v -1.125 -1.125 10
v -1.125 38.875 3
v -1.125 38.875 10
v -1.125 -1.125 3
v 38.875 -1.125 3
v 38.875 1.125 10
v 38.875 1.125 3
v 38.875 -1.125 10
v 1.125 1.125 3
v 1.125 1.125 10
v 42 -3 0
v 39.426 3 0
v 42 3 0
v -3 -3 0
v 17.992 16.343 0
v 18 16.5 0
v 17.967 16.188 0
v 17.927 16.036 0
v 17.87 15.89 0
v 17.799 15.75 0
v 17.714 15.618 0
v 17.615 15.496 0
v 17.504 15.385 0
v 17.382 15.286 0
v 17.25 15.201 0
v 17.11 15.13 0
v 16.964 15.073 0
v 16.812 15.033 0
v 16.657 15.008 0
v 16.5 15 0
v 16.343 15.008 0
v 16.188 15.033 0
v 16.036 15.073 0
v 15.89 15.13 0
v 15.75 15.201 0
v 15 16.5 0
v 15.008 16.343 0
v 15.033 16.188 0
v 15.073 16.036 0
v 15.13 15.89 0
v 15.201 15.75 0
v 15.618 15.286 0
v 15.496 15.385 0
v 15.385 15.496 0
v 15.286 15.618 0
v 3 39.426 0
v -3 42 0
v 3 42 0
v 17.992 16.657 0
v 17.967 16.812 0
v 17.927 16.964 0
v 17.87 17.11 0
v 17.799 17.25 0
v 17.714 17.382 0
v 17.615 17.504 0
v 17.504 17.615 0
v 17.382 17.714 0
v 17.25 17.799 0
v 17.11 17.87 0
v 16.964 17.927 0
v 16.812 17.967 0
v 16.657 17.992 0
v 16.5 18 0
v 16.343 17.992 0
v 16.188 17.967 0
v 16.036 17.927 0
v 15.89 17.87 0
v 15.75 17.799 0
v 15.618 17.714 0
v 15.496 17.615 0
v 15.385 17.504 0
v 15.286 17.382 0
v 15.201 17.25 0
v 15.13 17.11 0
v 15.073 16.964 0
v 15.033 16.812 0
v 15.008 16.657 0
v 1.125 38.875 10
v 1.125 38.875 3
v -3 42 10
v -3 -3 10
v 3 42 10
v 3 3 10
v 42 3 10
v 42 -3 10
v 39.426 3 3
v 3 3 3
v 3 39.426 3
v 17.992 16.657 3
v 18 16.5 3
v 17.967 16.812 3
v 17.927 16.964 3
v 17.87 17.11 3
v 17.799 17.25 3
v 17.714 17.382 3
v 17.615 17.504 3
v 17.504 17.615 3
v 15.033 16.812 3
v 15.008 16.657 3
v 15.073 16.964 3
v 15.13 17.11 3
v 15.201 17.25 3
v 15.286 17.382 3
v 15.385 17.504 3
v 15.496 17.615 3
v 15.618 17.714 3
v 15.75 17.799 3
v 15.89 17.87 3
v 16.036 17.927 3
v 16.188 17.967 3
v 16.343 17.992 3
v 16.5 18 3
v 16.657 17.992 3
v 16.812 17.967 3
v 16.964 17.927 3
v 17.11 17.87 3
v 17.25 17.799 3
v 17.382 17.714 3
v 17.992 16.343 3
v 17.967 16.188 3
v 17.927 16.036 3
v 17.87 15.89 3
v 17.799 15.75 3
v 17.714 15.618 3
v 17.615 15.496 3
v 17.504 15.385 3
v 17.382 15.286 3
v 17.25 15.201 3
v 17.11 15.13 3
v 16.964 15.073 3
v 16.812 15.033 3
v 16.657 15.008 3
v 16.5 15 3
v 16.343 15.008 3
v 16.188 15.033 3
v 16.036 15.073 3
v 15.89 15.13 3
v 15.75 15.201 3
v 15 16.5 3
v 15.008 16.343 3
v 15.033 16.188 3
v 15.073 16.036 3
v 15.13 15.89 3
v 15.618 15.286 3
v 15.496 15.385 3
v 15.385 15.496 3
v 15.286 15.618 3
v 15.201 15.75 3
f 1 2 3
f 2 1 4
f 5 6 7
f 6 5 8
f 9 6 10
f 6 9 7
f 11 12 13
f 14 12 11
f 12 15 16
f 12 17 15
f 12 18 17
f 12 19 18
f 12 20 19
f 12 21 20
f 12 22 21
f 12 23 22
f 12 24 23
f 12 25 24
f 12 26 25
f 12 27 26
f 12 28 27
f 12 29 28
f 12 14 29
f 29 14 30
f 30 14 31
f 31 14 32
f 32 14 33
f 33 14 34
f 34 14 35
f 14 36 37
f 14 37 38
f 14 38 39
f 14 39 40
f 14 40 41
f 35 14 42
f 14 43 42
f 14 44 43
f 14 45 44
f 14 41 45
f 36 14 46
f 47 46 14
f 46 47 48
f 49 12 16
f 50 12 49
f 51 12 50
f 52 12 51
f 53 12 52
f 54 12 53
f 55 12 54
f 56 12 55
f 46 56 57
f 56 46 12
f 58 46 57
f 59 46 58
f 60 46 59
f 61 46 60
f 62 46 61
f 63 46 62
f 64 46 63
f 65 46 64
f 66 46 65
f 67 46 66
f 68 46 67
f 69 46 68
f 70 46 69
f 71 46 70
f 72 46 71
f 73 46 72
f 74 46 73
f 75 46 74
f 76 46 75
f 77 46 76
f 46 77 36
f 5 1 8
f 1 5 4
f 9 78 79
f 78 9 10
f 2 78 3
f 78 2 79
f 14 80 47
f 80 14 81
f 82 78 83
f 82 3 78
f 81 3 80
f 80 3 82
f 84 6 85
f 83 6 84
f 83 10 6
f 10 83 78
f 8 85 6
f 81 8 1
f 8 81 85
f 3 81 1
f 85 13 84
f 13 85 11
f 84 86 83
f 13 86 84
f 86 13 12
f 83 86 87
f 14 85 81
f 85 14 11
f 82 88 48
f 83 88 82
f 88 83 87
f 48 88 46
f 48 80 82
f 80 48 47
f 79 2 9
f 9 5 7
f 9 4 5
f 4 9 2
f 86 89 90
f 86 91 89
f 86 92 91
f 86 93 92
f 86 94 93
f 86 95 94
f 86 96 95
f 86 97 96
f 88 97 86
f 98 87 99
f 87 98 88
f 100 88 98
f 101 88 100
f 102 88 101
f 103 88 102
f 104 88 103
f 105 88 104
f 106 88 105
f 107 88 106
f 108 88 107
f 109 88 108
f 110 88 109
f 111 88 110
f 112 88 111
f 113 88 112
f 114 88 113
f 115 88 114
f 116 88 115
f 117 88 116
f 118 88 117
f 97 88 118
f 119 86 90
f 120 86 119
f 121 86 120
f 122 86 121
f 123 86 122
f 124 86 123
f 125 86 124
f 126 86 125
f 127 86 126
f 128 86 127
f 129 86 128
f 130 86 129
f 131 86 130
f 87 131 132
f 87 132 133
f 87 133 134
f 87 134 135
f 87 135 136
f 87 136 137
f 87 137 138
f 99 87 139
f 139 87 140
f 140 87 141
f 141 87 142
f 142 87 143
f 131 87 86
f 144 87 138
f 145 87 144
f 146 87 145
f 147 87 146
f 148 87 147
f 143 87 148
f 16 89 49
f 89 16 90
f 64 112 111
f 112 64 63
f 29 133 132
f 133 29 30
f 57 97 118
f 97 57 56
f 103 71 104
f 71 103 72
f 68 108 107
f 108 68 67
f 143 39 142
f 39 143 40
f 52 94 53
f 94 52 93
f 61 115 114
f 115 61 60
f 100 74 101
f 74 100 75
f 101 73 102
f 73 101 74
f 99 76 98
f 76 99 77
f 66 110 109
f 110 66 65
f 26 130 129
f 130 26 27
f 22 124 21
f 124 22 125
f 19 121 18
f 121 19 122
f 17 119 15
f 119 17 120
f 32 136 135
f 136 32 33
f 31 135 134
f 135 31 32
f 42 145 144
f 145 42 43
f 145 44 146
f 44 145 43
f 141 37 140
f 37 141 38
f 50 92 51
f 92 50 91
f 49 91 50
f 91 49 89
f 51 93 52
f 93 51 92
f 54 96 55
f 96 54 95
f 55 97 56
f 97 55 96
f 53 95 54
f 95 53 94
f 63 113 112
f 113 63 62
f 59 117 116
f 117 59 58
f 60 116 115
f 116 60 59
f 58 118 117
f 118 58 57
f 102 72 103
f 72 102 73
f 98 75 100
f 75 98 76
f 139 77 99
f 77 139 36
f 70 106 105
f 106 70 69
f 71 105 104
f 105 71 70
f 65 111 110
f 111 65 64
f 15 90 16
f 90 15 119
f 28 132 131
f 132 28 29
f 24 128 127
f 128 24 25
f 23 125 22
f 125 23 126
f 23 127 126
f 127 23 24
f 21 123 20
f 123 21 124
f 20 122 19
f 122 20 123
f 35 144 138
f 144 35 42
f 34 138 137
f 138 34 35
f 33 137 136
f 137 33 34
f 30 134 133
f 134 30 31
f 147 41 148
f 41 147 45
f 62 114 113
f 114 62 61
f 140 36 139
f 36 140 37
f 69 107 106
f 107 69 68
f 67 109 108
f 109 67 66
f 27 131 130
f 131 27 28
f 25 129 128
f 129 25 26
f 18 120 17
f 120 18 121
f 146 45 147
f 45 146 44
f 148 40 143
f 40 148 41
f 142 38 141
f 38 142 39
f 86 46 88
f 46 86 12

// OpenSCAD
// Laser Halterunf Fuss


module Grundplatte() {
    translate([-3,-3,0])
    cube([45,45,3]);
}


module Wand() {
    
        cube([6,45,15],center=true);

}
module Wandinnen() {
        cube([2.25,45,16], center=true);
    }

module L() {
    Wand();
    translate([45/2-3,45/2-3,0])
    rotate([0,0,90])
    Wand();
}
module Linnen() {
    Wandinnen();
    translate([45/2-2.25/2,45/2-2.25/2,0])
    rotate([0,0,90])
    Wandinnen();
}

module Loch(){
    $fn=60;
    translate([45/2-6,45/2-6,-5])
    cylinder(d=3,h=10);
}

module Halterung(){
    difference(){
        union(){
            translate([-3, -3, 0])
            cube([45, 6, 10]);
            translate([-3, -3, 0])
            cube([6, 45, 10]);
            
        }
        union(){
            translate([-2.25/2, -2.25/2, 0])
            cube([40, 2.25, 22]);
            translate([-2.25/2, -2.25/2, 0])
            cube([2.25, 40, 22]);
            
        }
    }
    difference() {
        Grundplatte();
        Loch();
        rotate([0,0,45])
        translate([60/2,-60/2,-5])
        cube([60,60,20]);
    }
}
Halterung();
